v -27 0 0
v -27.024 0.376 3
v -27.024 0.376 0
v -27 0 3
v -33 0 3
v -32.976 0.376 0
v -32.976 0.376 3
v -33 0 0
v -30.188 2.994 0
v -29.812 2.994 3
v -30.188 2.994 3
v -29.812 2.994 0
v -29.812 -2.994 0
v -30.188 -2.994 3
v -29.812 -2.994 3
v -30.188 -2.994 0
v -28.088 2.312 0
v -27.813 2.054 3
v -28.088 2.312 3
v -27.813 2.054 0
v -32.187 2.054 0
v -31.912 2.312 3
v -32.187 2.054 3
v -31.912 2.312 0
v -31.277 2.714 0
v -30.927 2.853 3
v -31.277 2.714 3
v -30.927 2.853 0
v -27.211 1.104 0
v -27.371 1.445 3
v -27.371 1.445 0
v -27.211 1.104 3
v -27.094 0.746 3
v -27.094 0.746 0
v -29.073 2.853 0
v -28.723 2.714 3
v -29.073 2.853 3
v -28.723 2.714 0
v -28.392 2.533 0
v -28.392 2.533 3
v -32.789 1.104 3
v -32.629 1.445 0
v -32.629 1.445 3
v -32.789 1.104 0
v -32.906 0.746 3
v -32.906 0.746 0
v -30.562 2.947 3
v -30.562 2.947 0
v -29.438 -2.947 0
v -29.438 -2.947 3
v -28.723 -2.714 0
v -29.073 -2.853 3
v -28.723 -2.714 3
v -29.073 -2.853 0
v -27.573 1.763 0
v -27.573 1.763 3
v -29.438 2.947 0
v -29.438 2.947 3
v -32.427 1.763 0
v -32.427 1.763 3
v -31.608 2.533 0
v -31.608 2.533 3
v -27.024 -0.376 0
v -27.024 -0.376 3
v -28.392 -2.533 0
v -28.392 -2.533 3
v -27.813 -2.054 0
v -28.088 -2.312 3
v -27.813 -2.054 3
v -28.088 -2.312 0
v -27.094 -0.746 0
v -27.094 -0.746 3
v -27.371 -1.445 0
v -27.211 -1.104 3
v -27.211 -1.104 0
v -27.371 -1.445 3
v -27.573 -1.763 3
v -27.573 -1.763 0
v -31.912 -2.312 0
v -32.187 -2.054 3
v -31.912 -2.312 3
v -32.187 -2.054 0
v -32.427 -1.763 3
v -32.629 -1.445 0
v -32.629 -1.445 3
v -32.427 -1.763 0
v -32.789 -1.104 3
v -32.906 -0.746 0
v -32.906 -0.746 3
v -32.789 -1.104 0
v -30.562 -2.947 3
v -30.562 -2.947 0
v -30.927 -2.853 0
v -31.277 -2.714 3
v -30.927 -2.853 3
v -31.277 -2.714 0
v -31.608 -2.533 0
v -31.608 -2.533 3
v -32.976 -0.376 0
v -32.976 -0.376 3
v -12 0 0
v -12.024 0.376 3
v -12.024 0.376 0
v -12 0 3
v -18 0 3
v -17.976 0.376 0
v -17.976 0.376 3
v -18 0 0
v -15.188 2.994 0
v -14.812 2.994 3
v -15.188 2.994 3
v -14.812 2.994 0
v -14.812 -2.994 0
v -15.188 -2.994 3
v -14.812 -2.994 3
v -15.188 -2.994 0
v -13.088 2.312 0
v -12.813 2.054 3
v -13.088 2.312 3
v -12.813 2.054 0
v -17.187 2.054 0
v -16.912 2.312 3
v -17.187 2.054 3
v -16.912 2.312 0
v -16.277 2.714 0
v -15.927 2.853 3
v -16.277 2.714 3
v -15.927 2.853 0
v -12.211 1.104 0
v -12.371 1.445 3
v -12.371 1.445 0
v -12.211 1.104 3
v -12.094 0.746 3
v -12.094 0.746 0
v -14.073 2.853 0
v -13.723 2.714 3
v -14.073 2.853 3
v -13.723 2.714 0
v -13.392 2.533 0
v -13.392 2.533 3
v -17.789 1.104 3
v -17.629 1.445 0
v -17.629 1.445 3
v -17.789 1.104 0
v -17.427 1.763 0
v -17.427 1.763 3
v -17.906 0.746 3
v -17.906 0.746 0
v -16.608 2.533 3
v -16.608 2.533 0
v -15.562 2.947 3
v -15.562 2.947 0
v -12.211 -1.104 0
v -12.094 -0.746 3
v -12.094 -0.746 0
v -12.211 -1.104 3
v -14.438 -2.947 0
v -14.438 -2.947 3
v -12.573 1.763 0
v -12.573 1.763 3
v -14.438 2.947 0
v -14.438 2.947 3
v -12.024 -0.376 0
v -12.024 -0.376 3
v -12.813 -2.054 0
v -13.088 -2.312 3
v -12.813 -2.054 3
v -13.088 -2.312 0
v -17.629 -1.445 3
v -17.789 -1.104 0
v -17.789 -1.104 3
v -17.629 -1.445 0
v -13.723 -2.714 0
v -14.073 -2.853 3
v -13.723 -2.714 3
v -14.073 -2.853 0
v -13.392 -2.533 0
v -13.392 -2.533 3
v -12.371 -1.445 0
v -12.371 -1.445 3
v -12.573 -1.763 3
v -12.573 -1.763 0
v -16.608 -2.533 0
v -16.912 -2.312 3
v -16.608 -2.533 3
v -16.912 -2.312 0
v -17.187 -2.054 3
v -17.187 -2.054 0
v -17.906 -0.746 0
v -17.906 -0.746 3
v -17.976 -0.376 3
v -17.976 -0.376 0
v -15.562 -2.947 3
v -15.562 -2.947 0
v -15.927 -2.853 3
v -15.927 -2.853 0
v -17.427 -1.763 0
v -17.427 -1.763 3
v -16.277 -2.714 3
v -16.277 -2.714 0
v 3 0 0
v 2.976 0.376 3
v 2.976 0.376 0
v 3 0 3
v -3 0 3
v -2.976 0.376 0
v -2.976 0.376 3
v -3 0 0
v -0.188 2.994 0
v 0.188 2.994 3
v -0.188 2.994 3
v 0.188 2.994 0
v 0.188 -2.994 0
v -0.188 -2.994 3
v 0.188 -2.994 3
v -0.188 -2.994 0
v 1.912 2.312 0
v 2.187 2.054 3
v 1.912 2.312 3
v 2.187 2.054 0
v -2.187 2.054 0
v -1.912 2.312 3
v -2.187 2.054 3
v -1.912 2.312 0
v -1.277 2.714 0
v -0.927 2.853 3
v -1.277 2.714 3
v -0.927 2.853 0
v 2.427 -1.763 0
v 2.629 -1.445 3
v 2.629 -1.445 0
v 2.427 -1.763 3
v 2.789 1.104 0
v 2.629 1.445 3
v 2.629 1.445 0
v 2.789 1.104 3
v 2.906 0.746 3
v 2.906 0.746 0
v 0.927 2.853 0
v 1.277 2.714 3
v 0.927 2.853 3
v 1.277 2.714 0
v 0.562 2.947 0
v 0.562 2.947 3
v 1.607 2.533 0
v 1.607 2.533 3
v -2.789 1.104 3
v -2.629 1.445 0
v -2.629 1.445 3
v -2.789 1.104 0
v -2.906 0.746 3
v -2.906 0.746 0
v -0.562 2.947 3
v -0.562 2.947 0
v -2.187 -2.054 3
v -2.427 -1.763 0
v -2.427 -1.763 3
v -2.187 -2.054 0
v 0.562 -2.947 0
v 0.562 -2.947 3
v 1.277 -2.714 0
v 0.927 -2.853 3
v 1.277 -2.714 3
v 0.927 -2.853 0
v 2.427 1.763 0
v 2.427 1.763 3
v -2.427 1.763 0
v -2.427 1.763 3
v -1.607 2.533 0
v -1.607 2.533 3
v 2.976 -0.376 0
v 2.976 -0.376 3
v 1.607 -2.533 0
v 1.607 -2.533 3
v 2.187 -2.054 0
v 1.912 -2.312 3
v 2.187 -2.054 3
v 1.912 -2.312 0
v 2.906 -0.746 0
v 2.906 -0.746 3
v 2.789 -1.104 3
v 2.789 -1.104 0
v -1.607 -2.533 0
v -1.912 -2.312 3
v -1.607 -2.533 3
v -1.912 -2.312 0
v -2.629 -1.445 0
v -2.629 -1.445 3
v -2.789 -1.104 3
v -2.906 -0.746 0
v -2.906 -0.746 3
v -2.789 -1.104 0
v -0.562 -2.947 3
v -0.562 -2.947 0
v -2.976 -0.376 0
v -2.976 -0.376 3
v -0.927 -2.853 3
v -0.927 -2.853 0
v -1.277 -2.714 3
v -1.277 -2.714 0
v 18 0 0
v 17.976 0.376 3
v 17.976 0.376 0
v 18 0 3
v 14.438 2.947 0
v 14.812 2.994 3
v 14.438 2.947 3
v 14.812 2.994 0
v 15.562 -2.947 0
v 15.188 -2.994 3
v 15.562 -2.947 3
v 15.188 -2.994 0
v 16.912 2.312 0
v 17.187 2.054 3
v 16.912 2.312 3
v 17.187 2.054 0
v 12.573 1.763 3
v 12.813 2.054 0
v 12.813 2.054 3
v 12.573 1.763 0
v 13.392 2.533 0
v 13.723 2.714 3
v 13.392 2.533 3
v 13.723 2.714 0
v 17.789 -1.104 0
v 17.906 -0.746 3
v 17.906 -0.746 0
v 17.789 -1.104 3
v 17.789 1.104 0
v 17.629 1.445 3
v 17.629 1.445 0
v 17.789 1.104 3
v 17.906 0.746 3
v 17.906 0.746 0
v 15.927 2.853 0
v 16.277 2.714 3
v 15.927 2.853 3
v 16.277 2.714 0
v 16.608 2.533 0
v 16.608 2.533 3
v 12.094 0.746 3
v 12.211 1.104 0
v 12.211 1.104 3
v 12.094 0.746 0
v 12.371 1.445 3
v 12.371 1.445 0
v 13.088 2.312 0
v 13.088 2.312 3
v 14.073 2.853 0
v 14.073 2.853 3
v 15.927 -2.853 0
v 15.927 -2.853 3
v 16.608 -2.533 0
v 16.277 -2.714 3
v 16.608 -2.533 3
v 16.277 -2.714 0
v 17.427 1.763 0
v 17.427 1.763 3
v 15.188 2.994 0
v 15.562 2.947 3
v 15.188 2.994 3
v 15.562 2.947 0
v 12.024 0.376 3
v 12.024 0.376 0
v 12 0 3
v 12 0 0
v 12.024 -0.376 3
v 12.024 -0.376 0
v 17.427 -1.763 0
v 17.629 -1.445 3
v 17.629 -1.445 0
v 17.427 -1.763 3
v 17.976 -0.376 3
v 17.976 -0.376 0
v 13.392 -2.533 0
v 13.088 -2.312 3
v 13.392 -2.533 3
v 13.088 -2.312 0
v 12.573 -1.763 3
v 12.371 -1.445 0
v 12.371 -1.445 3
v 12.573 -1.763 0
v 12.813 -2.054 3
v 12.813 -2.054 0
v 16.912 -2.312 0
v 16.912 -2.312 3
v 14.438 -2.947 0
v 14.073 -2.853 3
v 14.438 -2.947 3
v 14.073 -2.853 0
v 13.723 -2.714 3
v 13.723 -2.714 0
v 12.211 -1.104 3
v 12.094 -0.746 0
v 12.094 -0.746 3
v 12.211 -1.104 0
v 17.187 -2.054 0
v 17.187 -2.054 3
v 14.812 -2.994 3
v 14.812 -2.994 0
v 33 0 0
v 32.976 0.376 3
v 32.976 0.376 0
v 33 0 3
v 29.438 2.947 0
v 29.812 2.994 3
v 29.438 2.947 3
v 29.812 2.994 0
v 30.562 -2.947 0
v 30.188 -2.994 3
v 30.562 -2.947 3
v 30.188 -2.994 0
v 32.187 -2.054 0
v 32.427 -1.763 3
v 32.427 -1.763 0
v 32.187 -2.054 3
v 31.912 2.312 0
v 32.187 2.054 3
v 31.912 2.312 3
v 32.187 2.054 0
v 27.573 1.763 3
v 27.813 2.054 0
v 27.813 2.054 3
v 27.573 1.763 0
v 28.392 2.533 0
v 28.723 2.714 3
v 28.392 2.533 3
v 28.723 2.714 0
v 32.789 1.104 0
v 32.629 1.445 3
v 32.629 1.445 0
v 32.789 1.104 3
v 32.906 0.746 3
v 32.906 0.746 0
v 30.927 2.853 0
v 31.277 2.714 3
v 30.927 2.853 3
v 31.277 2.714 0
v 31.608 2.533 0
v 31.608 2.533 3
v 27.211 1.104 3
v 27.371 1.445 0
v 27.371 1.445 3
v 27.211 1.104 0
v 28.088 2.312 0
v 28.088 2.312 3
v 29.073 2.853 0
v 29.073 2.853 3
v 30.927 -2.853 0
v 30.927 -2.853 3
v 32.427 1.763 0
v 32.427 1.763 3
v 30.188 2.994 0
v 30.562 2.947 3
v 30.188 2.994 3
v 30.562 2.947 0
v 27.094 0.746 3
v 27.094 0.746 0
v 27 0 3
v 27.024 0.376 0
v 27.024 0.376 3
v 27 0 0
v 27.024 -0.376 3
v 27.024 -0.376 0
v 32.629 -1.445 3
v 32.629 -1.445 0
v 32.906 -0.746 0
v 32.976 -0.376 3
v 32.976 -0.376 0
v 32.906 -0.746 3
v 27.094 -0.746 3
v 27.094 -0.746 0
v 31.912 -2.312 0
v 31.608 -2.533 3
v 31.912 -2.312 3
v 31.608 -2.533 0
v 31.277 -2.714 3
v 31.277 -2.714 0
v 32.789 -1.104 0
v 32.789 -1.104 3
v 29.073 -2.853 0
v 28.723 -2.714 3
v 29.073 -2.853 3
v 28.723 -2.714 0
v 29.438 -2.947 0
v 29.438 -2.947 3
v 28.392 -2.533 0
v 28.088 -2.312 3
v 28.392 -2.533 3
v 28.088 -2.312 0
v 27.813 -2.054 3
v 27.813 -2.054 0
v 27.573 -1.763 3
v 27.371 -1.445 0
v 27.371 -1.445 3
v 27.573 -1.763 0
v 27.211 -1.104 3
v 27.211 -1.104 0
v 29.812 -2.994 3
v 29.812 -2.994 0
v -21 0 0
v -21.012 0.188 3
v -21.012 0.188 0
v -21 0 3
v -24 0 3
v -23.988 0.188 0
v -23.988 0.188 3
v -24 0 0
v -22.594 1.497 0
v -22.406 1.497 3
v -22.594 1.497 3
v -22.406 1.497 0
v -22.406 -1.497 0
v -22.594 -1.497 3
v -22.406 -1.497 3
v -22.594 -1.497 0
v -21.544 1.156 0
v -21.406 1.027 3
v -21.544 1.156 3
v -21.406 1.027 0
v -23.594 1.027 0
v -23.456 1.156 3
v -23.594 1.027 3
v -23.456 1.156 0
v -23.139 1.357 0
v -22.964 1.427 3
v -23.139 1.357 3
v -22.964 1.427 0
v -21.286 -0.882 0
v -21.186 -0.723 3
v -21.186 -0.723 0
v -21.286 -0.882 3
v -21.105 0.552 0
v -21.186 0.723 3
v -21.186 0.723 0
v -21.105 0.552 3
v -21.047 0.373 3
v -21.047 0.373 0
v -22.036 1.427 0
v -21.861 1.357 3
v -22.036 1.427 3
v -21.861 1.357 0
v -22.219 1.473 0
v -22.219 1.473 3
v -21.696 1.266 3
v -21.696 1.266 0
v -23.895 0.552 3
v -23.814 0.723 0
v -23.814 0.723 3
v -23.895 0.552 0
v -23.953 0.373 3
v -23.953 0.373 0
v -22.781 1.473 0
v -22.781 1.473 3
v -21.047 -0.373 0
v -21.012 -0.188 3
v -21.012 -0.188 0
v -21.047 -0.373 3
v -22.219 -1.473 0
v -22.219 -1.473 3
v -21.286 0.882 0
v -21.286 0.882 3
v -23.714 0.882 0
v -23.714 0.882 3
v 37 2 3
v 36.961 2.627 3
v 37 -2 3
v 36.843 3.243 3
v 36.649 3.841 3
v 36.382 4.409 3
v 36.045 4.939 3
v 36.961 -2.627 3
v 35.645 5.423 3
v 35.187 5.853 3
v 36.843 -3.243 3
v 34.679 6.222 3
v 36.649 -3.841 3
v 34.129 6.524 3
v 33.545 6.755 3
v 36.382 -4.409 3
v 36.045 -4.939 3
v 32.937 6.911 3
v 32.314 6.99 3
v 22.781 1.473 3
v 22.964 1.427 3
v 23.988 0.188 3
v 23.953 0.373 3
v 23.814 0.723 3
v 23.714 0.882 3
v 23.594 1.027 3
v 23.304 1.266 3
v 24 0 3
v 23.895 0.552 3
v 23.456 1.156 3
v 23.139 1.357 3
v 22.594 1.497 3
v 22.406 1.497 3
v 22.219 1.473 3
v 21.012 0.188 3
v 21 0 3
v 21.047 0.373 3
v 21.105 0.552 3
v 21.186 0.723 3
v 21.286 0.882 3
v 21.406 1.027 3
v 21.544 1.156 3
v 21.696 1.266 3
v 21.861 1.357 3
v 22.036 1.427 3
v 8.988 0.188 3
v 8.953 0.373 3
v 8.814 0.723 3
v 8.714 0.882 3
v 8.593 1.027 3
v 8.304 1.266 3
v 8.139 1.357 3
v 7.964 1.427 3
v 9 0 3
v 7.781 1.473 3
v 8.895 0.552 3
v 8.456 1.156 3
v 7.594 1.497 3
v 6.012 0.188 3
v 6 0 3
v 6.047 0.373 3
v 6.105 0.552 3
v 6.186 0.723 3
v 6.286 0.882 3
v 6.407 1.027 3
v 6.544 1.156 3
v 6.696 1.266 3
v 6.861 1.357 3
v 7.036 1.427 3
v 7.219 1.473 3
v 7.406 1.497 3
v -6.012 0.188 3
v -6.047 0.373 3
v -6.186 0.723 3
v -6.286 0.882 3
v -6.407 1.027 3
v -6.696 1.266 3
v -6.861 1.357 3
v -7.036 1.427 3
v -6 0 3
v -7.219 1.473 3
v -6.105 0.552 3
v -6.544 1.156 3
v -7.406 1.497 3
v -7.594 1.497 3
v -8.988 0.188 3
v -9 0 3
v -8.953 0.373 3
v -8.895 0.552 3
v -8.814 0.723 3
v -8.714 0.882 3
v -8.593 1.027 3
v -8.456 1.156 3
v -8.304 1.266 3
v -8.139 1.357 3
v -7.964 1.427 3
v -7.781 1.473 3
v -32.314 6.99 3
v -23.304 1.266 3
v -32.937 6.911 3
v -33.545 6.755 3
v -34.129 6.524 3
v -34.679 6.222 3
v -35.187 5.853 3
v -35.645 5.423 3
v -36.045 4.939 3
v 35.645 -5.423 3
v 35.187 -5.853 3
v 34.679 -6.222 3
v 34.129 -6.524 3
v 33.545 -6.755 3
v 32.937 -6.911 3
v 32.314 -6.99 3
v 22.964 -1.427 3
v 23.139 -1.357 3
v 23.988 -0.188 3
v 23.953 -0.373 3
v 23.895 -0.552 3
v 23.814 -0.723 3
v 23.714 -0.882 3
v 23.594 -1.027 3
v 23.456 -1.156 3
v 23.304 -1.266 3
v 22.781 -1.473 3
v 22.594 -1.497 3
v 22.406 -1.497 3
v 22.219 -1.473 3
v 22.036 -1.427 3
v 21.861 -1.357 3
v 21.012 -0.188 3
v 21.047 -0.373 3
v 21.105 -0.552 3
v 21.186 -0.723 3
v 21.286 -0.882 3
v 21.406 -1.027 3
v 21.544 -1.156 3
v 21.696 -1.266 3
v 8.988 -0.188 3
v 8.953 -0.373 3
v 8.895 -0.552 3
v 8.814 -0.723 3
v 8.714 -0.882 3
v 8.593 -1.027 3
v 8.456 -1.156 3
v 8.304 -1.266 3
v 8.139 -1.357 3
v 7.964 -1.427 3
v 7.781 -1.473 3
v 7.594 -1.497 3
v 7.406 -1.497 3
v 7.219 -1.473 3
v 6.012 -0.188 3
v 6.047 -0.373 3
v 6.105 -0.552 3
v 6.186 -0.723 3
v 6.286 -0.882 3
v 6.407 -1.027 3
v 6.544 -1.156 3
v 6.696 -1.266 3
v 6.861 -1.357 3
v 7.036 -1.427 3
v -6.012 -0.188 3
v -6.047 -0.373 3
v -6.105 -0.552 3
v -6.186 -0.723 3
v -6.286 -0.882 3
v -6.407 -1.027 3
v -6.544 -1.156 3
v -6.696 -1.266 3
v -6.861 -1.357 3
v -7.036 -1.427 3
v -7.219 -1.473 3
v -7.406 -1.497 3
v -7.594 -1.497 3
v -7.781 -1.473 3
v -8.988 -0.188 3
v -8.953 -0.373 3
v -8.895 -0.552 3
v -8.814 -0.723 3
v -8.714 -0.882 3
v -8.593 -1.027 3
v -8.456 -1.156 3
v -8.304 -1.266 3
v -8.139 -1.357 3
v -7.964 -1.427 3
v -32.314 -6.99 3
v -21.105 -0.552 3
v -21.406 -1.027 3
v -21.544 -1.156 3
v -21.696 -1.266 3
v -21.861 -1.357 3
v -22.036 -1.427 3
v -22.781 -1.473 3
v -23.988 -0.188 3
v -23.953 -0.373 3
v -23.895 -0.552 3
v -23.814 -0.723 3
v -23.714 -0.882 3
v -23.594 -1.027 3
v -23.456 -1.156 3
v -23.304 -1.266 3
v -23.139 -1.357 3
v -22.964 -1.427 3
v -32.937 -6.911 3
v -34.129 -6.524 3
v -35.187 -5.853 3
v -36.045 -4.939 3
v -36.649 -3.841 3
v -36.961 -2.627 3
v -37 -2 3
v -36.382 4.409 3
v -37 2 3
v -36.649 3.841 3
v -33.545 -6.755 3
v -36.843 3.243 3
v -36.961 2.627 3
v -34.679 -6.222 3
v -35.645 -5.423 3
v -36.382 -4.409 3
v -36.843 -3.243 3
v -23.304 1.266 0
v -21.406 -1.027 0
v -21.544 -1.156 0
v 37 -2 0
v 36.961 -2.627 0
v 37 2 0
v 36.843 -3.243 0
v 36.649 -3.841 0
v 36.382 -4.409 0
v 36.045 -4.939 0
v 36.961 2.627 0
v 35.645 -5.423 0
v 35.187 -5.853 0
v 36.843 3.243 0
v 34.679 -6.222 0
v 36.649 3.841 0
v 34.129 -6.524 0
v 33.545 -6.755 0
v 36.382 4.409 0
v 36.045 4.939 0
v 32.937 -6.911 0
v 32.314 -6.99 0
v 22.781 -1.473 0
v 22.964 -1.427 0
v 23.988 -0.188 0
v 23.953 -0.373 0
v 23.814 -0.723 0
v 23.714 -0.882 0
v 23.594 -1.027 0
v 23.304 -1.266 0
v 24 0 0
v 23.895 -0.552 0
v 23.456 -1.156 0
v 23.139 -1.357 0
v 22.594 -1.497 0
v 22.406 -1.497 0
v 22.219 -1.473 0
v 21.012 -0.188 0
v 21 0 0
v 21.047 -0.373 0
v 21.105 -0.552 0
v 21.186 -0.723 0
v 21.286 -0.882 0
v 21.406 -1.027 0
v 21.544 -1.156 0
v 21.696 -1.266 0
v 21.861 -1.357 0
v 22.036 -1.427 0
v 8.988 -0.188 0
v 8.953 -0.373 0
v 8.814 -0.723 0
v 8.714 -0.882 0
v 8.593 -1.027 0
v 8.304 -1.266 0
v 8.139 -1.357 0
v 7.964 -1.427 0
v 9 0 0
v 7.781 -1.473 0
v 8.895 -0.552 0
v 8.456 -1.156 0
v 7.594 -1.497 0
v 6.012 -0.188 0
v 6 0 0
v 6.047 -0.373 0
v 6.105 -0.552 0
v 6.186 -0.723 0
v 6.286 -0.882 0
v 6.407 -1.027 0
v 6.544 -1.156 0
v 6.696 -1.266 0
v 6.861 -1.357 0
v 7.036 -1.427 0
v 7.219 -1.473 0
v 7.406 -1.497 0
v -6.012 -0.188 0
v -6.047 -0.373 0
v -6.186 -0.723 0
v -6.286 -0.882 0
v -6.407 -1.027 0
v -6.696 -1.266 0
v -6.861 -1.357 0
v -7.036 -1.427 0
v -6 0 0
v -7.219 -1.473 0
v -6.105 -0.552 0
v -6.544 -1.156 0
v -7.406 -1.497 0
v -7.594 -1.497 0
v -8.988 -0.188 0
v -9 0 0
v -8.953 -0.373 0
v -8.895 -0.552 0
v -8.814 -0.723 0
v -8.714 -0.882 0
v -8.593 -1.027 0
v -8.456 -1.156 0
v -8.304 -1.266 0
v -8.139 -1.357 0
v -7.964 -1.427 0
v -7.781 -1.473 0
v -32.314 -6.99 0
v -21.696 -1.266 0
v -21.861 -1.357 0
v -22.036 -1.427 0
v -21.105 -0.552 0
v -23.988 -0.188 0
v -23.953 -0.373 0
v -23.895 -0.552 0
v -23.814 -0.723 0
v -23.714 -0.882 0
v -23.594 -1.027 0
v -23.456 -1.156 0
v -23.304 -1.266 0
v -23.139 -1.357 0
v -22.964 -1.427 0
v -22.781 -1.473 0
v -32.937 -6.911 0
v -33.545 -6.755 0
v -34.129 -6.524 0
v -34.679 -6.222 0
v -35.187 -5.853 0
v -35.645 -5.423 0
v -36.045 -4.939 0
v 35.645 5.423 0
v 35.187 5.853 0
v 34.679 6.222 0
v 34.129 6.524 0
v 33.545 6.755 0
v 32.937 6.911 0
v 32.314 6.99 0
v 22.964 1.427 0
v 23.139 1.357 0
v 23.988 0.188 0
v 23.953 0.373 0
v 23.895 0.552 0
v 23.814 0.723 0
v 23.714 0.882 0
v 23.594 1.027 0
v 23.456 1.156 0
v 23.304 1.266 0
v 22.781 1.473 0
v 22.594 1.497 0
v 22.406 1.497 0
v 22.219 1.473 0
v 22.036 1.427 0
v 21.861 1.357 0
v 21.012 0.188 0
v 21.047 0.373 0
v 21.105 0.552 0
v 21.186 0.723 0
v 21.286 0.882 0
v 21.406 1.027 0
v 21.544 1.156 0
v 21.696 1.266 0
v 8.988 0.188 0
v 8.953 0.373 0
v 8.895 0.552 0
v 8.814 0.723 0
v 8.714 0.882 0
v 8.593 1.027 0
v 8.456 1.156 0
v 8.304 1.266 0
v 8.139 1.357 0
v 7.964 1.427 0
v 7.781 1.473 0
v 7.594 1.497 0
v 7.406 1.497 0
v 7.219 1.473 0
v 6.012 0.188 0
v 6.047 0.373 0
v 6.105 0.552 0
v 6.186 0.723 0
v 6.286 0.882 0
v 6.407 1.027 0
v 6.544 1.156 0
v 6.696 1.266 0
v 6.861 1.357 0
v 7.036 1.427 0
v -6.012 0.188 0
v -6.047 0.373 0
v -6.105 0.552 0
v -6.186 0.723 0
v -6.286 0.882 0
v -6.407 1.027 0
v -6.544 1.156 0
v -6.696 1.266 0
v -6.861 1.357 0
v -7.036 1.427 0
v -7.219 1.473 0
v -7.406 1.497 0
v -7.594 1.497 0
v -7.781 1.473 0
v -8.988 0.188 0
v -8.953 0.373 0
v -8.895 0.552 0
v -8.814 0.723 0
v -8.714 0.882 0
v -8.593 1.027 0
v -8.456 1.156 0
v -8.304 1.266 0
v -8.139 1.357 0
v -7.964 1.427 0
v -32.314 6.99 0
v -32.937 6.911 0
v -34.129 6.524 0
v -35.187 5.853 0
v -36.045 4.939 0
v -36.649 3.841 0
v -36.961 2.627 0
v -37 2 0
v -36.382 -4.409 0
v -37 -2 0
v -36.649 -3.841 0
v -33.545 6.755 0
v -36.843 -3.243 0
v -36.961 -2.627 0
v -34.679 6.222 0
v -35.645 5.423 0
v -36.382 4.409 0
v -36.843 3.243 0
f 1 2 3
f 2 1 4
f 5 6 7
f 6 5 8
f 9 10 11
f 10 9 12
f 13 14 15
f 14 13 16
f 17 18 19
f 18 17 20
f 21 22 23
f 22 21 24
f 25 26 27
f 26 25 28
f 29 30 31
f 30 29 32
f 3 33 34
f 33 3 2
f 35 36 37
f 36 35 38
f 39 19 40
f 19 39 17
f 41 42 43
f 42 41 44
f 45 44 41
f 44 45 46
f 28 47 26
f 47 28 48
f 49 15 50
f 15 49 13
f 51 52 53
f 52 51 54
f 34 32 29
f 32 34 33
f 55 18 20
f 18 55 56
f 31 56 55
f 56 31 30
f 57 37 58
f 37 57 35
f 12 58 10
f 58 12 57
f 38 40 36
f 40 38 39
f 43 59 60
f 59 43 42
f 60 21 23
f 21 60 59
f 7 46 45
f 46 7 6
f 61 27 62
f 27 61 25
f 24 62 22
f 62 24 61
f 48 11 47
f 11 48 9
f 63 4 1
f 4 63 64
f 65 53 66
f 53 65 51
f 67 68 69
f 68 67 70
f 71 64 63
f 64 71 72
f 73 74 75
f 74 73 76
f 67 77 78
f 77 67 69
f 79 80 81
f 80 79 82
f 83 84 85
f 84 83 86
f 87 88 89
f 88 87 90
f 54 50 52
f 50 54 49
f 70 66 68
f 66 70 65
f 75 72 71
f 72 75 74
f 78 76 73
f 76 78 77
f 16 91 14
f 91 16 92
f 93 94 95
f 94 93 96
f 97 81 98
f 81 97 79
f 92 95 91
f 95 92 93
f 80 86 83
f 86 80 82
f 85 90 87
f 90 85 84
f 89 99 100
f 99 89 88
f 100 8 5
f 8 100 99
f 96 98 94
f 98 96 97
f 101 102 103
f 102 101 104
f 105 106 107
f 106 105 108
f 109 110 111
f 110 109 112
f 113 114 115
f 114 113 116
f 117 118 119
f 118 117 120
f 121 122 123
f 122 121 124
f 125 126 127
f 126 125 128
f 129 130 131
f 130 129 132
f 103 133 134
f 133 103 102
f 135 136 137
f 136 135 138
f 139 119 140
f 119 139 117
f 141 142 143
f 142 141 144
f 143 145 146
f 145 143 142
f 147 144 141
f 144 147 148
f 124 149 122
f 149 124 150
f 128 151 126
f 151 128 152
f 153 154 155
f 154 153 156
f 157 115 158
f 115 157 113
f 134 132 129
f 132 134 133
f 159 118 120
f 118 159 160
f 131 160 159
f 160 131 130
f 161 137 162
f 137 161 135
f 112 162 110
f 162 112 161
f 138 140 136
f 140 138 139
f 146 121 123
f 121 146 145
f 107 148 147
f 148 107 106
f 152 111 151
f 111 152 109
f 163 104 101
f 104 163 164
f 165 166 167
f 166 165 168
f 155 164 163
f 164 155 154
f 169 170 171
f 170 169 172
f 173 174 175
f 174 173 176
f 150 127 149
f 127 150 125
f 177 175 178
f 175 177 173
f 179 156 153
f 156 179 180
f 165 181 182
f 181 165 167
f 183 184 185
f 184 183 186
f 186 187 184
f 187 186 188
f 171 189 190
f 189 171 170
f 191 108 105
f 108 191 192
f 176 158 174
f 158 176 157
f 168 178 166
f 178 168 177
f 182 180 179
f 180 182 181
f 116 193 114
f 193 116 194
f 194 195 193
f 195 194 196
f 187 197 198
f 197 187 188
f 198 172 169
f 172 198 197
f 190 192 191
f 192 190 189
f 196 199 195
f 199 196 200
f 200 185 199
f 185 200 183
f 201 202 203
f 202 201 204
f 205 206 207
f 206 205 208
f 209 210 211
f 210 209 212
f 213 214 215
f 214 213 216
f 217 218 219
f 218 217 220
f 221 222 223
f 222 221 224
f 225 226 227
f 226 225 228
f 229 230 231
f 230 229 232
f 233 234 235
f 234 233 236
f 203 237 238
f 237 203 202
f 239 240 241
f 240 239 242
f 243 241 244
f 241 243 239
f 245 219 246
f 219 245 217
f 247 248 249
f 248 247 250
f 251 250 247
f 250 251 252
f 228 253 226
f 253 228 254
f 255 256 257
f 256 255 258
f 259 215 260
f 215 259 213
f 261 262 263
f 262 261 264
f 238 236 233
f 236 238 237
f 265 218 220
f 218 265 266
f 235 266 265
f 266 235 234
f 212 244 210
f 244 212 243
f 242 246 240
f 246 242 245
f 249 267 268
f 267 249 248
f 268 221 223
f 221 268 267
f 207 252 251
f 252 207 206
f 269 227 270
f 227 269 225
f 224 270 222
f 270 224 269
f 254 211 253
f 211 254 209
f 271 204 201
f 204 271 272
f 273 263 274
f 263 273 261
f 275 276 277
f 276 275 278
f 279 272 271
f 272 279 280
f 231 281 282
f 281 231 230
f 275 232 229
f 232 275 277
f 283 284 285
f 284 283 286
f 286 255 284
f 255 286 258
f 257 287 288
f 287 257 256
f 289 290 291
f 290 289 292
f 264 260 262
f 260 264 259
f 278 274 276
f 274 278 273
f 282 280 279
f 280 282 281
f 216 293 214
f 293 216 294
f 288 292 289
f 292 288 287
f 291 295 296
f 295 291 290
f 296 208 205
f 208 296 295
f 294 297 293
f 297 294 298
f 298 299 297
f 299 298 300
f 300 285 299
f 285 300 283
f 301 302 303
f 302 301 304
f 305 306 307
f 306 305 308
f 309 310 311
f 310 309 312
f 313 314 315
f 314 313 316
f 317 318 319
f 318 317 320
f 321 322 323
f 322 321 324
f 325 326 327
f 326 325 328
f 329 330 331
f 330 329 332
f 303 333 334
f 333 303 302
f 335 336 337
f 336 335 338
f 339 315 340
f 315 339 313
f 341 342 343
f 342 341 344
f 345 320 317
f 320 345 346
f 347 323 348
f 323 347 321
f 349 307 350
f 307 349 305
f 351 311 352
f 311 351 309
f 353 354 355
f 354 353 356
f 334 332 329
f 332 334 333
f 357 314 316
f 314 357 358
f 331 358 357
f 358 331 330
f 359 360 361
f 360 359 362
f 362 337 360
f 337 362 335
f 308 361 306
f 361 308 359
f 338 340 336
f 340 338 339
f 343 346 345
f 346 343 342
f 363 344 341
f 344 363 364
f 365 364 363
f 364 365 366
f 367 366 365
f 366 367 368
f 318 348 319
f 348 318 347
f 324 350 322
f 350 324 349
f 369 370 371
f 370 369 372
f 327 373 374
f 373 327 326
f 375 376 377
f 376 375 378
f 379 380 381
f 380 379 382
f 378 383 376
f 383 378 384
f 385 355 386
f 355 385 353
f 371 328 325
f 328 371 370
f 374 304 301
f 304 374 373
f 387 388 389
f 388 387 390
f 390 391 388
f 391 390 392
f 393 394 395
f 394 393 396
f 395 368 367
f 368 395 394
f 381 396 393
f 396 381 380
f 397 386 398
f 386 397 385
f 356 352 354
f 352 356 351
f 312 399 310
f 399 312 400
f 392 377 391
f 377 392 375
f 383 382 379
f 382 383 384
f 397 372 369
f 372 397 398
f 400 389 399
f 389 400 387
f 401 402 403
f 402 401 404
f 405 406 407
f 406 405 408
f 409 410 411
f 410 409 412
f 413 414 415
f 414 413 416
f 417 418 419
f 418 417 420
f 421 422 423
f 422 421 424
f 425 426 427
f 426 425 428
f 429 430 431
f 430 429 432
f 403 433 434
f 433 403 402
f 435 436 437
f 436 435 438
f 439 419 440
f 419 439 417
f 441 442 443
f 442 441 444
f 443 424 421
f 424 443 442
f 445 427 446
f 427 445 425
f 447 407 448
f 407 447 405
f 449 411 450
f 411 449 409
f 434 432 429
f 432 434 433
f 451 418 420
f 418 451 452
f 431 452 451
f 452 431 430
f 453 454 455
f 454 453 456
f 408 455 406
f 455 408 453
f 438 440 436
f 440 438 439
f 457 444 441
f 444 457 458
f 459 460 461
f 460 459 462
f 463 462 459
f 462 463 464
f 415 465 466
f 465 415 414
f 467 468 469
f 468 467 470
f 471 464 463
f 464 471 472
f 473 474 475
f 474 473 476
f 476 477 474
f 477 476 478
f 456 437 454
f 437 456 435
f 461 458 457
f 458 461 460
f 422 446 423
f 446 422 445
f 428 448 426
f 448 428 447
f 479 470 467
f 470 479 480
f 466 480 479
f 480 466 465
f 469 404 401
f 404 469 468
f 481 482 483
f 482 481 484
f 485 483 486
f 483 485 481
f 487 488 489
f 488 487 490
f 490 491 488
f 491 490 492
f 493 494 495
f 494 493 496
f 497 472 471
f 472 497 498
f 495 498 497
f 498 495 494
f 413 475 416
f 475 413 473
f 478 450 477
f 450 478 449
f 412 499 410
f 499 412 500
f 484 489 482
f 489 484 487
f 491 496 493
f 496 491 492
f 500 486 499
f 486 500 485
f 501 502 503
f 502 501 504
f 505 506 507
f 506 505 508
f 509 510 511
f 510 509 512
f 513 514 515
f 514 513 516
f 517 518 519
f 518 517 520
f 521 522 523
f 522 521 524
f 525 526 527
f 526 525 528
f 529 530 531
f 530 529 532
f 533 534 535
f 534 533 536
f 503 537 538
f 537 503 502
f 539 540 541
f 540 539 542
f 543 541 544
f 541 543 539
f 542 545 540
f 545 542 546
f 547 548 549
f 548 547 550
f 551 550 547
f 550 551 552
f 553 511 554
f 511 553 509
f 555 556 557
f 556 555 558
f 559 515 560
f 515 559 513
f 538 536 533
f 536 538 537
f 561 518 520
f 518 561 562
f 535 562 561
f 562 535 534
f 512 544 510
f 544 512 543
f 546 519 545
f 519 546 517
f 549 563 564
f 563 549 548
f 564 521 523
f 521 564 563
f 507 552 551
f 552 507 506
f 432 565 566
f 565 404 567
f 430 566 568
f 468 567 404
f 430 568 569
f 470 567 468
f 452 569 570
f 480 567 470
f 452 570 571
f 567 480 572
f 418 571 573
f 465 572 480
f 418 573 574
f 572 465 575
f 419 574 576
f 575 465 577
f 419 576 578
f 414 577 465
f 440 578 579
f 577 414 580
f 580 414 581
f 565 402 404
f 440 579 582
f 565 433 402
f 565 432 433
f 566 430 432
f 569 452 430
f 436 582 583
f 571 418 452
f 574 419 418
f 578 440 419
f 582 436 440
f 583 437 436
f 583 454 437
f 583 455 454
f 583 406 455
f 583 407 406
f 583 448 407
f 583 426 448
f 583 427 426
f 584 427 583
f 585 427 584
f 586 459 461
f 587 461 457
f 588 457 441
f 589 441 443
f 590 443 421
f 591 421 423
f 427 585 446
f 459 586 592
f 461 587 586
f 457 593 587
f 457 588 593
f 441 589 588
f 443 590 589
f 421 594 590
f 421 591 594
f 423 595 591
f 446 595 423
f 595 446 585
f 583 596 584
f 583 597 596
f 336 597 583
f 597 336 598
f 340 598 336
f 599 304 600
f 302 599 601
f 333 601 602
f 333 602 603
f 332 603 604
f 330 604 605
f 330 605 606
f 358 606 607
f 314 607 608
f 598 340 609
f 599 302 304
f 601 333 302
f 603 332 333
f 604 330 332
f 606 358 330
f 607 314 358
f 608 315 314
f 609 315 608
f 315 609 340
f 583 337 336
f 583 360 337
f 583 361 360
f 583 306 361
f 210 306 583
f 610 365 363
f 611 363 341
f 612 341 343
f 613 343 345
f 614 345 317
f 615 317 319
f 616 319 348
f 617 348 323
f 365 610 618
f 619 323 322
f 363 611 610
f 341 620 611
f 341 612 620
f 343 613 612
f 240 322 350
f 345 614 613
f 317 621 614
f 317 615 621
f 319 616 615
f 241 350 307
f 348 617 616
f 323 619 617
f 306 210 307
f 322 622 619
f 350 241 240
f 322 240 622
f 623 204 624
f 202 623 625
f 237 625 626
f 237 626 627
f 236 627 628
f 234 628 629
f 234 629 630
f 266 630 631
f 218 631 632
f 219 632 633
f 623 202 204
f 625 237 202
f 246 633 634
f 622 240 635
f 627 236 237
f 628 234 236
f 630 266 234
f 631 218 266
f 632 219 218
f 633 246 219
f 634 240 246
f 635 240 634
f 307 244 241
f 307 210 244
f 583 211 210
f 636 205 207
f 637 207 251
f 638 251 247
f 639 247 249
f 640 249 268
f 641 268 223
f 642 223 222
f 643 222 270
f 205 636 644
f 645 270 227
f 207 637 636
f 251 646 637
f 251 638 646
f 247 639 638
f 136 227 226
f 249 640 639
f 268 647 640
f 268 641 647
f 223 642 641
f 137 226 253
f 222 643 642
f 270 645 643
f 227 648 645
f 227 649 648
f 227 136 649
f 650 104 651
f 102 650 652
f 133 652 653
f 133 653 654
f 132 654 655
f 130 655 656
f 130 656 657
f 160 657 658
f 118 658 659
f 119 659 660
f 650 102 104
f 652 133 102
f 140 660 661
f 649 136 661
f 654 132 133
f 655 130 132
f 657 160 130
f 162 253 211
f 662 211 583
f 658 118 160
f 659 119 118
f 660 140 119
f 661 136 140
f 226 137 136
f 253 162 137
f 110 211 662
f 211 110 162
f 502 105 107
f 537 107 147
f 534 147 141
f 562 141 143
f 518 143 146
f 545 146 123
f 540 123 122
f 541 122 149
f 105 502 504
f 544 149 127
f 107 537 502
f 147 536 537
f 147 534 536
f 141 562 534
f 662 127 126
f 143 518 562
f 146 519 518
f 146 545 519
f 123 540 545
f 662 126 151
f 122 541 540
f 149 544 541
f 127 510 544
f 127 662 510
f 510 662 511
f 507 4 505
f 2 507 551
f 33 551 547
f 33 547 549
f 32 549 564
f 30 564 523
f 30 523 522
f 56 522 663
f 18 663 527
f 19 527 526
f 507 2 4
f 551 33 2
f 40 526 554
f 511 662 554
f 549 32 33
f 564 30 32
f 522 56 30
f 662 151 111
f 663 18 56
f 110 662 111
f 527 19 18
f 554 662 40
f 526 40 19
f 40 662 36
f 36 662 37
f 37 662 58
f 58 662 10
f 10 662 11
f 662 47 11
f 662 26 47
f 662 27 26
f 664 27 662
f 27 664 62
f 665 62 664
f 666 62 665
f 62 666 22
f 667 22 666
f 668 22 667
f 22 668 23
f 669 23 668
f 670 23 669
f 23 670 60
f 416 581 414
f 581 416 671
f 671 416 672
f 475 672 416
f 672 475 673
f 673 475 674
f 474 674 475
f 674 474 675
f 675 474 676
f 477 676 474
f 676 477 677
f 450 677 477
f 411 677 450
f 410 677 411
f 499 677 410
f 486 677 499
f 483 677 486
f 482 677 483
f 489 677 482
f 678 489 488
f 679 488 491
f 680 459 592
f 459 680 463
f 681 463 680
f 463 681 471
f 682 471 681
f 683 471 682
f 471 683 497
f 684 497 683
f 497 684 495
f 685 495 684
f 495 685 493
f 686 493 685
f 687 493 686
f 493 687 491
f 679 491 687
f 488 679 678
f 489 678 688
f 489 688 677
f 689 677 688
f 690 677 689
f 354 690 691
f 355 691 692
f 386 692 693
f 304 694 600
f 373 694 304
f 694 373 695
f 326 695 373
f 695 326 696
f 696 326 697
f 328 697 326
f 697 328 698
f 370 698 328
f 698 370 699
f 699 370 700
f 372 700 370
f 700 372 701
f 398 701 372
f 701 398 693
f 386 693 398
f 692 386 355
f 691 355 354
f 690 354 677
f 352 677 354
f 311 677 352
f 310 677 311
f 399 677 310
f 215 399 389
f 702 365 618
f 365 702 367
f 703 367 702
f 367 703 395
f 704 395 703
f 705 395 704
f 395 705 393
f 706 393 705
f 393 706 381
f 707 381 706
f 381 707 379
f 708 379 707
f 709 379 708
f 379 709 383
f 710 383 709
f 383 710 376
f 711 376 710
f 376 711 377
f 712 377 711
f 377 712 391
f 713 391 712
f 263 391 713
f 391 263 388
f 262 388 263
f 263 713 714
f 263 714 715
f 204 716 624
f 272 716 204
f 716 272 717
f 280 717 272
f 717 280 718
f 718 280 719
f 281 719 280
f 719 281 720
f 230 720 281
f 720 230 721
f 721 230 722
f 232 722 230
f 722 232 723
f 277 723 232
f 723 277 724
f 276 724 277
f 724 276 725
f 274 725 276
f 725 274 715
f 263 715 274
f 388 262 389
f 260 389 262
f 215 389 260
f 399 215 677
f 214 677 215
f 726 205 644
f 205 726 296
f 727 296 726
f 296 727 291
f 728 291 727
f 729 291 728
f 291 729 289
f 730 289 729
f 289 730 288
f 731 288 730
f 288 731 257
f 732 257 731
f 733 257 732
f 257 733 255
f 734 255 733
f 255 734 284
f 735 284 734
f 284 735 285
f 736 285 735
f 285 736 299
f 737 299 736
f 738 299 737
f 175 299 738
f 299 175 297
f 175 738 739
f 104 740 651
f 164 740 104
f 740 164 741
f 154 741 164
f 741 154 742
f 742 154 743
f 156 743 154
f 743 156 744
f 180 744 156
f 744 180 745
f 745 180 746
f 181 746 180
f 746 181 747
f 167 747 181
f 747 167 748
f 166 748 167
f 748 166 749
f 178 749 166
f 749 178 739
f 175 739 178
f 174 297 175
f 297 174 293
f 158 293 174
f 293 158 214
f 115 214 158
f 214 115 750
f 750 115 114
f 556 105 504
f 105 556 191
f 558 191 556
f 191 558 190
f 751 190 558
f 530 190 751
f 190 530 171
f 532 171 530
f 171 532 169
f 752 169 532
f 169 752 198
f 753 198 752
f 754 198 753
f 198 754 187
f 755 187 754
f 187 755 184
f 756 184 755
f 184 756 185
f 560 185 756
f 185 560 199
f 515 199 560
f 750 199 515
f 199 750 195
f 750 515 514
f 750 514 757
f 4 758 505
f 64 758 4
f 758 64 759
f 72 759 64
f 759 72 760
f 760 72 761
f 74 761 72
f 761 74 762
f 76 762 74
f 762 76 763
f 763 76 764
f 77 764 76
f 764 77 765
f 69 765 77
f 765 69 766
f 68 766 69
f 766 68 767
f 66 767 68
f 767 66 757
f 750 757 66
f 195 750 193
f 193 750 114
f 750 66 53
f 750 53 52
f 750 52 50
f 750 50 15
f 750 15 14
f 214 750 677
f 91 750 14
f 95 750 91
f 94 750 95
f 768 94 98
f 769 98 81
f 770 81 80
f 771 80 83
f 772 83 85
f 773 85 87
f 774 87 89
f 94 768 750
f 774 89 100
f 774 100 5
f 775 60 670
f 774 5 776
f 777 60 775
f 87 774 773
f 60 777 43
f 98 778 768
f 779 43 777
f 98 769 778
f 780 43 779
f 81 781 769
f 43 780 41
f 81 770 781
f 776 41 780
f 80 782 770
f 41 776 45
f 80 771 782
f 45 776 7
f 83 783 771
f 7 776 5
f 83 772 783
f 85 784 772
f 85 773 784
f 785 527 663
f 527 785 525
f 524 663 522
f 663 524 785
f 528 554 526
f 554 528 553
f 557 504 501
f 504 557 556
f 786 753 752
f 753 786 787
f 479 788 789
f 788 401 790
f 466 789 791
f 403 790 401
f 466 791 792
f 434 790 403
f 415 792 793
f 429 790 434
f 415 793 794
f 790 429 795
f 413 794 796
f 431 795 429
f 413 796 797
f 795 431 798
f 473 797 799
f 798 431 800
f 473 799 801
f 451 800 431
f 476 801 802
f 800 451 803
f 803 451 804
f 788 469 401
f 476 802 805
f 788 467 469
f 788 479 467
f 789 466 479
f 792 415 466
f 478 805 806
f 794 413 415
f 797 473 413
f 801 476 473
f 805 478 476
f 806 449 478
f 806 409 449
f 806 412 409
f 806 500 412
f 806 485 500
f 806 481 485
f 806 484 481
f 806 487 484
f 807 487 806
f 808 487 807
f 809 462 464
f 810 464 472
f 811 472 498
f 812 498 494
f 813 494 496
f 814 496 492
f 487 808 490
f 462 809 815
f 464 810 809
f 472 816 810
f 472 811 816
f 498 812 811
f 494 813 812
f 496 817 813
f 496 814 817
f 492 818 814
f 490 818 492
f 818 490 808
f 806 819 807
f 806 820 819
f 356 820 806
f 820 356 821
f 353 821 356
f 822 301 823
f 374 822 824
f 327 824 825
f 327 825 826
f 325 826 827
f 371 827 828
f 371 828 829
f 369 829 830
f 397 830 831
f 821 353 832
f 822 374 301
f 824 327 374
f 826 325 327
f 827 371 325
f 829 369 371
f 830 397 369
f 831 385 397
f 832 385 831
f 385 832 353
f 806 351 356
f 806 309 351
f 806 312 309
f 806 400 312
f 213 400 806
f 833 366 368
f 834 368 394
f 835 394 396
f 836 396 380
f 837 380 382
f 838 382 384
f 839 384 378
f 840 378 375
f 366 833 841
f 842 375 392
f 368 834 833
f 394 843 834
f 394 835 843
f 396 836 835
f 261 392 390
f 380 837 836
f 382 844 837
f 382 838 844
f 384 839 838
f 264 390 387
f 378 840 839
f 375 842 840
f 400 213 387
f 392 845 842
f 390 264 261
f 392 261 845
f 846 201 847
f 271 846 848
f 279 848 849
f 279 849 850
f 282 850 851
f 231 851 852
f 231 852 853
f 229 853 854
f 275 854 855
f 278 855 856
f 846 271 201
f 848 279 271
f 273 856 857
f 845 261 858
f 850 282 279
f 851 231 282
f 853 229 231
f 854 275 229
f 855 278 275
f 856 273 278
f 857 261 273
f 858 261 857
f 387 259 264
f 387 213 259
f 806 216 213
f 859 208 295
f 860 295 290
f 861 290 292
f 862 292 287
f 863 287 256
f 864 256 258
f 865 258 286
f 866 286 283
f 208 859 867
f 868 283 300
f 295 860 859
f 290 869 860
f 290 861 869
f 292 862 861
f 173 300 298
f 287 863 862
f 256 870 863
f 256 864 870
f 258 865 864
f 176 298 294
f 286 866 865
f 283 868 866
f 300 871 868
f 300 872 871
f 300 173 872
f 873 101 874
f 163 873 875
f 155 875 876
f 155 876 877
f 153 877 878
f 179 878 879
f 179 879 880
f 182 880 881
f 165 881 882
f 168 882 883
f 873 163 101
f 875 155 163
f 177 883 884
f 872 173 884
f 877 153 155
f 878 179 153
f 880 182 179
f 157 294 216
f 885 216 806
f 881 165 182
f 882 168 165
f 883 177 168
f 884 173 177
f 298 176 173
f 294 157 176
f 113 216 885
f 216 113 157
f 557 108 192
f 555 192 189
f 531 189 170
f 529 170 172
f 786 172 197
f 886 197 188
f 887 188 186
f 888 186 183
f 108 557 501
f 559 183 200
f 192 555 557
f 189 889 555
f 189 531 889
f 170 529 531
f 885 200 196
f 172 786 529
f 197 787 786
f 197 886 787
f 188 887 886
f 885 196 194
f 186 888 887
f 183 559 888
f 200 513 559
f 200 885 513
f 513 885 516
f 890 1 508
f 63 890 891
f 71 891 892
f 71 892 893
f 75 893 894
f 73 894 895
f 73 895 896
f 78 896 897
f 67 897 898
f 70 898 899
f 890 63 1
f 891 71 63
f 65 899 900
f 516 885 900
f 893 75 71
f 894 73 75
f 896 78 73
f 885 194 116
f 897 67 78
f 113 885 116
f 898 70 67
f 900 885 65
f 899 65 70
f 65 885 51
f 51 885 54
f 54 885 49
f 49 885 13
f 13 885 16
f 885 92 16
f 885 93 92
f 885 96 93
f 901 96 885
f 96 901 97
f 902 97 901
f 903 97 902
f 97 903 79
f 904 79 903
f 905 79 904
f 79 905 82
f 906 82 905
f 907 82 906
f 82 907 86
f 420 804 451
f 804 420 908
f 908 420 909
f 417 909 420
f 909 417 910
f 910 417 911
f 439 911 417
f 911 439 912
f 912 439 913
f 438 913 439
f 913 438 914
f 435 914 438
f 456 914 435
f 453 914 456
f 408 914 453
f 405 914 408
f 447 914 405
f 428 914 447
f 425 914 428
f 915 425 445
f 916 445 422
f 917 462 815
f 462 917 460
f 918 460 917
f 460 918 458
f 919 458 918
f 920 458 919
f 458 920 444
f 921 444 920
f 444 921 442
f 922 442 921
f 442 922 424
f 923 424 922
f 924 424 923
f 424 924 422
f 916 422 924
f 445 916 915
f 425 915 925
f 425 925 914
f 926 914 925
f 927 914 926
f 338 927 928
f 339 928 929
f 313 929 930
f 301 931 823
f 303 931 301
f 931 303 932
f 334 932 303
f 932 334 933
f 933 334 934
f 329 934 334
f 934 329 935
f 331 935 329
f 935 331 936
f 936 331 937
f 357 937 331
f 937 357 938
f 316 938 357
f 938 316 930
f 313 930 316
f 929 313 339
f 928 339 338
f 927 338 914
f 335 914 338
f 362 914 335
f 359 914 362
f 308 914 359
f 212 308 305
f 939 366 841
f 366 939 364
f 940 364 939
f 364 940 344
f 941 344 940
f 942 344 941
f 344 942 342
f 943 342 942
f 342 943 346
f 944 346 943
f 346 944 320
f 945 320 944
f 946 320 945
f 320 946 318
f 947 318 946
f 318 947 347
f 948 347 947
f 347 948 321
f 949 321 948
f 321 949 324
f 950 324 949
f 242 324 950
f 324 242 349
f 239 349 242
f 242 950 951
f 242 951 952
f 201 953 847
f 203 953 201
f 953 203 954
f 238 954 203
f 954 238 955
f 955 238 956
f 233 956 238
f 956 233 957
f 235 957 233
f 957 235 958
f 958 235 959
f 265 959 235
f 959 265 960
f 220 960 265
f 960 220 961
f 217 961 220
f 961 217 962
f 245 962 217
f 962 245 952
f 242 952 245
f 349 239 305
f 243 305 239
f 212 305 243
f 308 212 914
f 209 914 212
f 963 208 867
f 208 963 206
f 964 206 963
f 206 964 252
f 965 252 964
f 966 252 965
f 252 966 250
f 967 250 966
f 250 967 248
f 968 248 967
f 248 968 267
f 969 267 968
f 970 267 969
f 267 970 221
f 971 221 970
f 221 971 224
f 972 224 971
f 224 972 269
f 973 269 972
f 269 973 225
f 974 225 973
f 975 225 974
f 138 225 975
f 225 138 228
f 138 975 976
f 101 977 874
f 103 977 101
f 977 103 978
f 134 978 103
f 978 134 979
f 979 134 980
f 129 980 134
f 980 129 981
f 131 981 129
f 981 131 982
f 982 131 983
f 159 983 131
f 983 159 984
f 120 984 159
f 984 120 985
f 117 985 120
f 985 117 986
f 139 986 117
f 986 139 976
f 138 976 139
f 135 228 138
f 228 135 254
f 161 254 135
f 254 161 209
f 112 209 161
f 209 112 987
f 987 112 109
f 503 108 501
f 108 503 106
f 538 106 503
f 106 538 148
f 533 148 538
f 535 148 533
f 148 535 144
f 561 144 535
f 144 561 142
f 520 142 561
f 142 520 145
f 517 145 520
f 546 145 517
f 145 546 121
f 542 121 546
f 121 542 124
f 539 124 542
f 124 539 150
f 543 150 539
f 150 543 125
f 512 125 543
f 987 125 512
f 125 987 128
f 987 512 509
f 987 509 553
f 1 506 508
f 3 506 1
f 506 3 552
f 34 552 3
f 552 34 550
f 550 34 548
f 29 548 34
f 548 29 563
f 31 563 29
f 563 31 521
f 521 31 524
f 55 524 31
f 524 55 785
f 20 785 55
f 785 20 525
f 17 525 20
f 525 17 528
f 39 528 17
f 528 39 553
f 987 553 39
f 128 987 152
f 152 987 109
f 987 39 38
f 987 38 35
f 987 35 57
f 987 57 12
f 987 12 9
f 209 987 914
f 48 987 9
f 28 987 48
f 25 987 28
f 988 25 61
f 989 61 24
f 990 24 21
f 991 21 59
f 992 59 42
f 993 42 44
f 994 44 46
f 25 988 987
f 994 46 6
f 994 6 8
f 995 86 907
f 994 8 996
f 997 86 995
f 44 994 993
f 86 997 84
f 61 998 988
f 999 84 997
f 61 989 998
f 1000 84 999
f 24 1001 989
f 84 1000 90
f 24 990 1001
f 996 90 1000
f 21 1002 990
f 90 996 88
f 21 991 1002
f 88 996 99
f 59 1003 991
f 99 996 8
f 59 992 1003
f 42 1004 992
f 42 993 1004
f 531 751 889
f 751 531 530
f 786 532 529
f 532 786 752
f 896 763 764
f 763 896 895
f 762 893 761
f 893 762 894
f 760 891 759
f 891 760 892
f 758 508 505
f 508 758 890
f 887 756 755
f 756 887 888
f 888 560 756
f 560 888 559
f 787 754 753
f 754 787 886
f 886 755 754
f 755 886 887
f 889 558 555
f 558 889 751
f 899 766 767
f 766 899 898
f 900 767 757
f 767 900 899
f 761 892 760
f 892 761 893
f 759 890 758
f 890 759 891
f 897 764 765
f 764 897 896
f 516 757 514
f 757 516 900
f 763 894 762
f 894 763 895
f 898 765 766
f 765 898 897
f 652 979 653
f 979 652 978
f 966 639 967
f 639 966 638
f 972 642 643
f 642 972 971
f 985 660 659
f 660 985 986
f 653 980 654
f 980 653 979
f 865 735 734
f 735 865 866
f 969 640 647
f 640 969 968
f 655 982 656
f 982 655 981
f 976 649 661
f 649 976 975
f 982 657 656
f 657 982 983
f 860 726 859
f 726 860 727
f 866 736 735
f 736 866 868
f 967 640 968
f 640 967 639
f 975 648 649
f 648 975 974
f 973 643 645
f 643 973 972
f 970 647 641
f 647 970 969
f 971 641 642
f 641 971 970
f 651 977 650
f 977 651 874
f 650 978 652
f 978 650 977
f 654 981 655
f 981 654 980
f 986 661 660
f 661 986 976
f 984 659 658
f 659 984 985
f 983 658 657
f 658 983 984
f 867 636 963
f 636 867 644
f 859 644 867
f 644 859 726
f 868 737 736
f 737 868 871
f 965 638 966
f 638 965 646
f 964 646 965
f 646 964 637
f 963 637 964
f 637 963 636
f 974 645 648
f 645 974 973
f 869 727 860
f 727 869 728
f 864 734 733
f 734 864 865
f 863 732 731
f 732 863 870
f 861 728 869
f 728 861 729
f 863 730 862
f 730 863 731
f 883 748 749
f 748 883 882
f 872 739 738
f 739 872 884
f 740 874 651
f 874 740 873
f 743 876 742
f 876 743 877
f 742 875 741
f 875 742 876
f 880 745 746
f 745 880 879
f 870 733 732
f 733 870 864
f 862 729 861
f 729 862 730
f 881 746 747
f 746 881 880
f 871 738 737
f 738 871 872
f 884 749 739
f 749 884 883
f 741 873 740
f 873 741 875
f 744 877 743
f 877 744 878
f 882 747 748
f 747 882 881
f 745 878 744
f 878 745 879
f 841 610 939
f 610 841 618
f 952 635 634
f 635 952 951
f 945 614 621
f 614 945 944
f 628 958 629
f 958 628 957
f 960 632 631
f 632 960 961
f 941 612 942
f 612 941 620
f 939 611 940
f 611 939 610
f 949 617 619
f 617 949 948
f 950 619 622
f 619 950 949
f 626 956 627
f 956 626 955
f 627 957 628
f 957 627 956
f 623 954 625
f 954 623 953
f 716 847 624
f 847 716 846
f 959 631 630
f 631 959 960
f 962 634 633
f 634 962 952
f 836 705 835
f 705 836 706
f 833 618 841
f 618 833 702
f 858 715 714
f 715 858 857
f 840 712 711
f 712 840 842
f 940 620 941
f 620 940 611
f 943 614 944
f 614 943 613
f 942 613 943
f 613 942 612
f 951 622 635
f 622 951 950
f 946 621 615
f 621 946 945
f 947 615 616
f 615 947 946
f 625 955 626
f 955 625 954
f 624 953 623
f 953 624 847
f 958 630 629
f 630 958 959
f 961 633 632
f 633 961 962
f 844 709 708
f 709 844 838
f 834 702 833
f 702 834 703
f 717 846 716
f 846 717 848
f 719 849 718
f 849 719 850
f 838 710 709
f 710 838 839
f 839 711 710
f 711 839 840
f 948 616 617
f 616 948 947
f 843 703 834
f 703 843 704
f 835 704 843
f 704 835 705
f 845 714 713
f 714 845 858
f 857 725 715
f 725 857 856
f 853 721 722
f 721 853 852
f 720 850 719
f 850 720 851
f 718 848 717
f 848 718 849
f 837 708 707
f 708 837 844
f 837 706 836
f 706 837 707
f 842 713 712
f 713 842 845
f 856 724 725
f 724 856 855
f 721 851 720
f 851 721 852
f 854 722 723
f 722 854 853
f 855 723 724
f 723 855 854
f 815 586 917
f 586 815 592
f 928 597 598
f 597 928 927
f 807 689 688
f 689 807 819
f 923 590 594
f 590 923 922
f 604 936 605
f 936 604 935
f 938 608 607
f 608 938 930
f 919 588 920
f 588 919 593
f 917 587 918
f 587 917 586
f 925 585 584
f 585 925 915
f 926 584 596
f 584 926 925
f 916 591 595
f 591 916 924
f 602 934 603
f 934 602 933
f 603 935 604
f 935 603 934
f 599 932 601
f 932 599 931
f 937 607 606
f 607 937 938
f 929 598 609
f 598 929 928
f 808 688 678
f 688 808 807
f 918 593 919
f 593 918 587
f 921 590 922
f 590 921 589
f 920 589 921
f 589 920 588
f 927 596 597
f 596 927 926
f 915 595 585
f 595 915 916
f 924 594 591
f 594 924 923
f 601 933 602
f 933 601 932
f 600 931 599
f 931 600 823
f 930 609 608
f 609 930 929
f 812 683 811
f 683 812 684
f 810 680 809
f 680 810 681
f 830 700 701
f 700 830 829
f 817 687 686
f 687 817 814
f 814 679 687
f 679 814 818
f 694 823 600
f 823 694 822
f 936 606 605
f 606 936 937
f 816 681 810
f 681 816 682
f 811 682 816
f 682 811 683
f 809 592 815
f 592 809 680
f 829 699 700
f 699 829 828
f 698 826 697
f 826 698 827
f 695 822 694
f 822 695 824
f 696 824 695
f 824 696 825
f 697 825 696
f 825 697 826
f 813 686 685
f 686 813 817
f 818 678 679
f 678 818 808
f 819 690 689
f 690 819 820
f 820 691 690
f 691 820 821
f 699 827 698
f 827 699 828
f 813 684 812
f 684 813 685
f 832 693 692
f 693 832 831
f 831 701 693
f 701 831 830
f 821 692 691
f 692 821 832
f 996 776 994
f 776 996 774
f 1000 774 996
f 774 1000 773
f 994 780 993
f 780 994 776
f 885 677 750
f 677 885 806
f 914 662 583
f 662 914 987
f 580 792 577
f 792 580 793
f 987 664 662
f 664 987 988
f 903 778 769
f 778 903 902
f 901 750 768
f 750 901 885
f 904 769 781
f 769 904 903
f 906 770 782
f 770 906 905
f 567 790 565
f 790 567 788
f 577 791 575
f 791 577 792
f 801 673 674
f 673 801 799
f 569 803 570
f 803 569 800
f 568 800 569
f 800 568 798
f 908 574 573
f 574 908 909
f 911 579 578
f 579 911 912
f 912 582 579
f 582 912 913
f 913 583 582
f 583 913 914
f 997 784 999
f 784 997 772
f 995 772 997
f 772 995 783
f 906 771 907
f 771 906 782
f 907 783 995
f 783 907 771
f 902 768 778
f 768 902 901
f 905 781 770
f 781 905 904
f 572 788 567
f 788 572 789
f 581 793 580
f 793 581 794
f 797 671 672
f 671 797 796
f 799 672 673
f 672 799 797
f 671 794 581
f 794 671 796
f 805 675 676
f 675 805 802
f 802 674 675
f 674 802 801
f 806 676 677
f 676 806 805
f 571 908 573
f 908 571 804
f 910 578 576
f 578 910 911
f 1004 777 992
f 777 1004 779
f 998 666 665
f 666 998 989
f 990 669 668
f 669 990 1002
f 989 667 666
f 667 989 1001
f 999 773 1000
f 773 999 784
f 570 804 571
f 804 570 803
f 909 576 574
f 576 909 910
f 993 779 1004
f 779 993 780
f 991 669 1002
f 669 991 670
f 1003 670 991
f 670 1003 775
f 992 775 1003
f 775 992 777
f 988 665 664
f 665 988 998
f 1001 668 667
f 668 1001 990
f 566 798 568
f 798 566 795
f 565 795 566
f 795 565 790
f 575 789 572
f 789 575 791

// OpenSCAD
$fn = 50;


difference() {
	union() {
		hull() {
			translate(v = [-32.0000000000, 2.0000000000, 0]) {
				cylinder(h = 3, r = 5);
			}
			translate(v = [32.0000000000, 2.0000000000, 0]) {
				cylinder(h = 3, r = 5);
			}
			translate(v = [-32.0000000000, -2.0000000000, 0]) {
				cylinder(h = 3, r = 5);
			}
			translate(v = [32.0000000000, -2.0000000000, 0]) {
				cylinder(h = 3, r = 5);
			}
		}
	}
	union() {
		translate(v = [-30.0000000000, 0.0000000000, 0]) {
			translate(v = [0, 0, -100]) {
				cylinder(h = 200, r = 3.0000000000);
			}
		}
		translate(v = [-15.0000000000, 0.0000000000, 0]) {
			translate(v = [0, 0, -100]) {
				cylinder(h = 200, r = 3.0000000000);
			}
		}
		translate(v = [0, 0, -100]) {
			cylinder(h = 200, r = 3.0000000000);
		}
		translate(v = [15.0000000000, 0.0000000000, 0]) {
			translate(v = [0, 0, -100]) {
				cylinder(h = 200, r = 3.0000000000);
			}
		}
		translate(v = [30.0000000000, 0.0000000000, 0]) {
			translate(v = [0, 0, -100]) {
				cylinder(h = 200, r = 3.0000000000);
			}
		}
		translate(v = [-30.0000000000, 0.0000000000, 0]) {
			translate(v = [0, 0, -100]) {
				cylinder(h = 200, r = 1.5000000000);
			}
		}
		translate(v = [-22.5000000000, 0.0000000000, 0]) {
			translate(v = [0, 0, -100]) {
				cylinder(h = 200, r = 1.5000000000);
			}
		}
		translate(v = [-15.0000000000, 0.0000000000, 0]) {
			translate(v = [0, 0, -100]) {
				cylinder(h = 200, r = 1.5000000000);
			}
		}
		translate(v = [-7.5000000000, 0.0000000000, 0]) {
			translate(v = [0, 0, -100]) {
				cylinder(h = 200, r = 1.5000000000);
			}
		}
		translate(v = [0, 0, -100]) {
			cylinder(h = 200, r = 1.5000000000);
		}
		translate(v = [7.5000000000, 0.0000000000, 0]) {
			translate(v = [0, 0, -100]) {
				cylinder(h = 200, r = 1.5000000000);
			}
		}
		translate(v = [15.0000000000, 0.0000000000, 0]) {
			translate(v = [0, 0, -100]) {
				cylinder(h = 200, r = 1.5000000000);
			}
		}
		translate(v = [22.5000000000, 0.0000000000, 0]) {
			translate(v = [0, 0, -100]) {
				cylinder(h = 200, r = 1.5000000000);
			}
		}
		translate(v = [30.0000000000, 0.0000000000, 0]) {
			translate(v = [0, 0, -100]) {
				cylinder(h = 200, r = 1.5000000000);
			}
		}
	}
}
